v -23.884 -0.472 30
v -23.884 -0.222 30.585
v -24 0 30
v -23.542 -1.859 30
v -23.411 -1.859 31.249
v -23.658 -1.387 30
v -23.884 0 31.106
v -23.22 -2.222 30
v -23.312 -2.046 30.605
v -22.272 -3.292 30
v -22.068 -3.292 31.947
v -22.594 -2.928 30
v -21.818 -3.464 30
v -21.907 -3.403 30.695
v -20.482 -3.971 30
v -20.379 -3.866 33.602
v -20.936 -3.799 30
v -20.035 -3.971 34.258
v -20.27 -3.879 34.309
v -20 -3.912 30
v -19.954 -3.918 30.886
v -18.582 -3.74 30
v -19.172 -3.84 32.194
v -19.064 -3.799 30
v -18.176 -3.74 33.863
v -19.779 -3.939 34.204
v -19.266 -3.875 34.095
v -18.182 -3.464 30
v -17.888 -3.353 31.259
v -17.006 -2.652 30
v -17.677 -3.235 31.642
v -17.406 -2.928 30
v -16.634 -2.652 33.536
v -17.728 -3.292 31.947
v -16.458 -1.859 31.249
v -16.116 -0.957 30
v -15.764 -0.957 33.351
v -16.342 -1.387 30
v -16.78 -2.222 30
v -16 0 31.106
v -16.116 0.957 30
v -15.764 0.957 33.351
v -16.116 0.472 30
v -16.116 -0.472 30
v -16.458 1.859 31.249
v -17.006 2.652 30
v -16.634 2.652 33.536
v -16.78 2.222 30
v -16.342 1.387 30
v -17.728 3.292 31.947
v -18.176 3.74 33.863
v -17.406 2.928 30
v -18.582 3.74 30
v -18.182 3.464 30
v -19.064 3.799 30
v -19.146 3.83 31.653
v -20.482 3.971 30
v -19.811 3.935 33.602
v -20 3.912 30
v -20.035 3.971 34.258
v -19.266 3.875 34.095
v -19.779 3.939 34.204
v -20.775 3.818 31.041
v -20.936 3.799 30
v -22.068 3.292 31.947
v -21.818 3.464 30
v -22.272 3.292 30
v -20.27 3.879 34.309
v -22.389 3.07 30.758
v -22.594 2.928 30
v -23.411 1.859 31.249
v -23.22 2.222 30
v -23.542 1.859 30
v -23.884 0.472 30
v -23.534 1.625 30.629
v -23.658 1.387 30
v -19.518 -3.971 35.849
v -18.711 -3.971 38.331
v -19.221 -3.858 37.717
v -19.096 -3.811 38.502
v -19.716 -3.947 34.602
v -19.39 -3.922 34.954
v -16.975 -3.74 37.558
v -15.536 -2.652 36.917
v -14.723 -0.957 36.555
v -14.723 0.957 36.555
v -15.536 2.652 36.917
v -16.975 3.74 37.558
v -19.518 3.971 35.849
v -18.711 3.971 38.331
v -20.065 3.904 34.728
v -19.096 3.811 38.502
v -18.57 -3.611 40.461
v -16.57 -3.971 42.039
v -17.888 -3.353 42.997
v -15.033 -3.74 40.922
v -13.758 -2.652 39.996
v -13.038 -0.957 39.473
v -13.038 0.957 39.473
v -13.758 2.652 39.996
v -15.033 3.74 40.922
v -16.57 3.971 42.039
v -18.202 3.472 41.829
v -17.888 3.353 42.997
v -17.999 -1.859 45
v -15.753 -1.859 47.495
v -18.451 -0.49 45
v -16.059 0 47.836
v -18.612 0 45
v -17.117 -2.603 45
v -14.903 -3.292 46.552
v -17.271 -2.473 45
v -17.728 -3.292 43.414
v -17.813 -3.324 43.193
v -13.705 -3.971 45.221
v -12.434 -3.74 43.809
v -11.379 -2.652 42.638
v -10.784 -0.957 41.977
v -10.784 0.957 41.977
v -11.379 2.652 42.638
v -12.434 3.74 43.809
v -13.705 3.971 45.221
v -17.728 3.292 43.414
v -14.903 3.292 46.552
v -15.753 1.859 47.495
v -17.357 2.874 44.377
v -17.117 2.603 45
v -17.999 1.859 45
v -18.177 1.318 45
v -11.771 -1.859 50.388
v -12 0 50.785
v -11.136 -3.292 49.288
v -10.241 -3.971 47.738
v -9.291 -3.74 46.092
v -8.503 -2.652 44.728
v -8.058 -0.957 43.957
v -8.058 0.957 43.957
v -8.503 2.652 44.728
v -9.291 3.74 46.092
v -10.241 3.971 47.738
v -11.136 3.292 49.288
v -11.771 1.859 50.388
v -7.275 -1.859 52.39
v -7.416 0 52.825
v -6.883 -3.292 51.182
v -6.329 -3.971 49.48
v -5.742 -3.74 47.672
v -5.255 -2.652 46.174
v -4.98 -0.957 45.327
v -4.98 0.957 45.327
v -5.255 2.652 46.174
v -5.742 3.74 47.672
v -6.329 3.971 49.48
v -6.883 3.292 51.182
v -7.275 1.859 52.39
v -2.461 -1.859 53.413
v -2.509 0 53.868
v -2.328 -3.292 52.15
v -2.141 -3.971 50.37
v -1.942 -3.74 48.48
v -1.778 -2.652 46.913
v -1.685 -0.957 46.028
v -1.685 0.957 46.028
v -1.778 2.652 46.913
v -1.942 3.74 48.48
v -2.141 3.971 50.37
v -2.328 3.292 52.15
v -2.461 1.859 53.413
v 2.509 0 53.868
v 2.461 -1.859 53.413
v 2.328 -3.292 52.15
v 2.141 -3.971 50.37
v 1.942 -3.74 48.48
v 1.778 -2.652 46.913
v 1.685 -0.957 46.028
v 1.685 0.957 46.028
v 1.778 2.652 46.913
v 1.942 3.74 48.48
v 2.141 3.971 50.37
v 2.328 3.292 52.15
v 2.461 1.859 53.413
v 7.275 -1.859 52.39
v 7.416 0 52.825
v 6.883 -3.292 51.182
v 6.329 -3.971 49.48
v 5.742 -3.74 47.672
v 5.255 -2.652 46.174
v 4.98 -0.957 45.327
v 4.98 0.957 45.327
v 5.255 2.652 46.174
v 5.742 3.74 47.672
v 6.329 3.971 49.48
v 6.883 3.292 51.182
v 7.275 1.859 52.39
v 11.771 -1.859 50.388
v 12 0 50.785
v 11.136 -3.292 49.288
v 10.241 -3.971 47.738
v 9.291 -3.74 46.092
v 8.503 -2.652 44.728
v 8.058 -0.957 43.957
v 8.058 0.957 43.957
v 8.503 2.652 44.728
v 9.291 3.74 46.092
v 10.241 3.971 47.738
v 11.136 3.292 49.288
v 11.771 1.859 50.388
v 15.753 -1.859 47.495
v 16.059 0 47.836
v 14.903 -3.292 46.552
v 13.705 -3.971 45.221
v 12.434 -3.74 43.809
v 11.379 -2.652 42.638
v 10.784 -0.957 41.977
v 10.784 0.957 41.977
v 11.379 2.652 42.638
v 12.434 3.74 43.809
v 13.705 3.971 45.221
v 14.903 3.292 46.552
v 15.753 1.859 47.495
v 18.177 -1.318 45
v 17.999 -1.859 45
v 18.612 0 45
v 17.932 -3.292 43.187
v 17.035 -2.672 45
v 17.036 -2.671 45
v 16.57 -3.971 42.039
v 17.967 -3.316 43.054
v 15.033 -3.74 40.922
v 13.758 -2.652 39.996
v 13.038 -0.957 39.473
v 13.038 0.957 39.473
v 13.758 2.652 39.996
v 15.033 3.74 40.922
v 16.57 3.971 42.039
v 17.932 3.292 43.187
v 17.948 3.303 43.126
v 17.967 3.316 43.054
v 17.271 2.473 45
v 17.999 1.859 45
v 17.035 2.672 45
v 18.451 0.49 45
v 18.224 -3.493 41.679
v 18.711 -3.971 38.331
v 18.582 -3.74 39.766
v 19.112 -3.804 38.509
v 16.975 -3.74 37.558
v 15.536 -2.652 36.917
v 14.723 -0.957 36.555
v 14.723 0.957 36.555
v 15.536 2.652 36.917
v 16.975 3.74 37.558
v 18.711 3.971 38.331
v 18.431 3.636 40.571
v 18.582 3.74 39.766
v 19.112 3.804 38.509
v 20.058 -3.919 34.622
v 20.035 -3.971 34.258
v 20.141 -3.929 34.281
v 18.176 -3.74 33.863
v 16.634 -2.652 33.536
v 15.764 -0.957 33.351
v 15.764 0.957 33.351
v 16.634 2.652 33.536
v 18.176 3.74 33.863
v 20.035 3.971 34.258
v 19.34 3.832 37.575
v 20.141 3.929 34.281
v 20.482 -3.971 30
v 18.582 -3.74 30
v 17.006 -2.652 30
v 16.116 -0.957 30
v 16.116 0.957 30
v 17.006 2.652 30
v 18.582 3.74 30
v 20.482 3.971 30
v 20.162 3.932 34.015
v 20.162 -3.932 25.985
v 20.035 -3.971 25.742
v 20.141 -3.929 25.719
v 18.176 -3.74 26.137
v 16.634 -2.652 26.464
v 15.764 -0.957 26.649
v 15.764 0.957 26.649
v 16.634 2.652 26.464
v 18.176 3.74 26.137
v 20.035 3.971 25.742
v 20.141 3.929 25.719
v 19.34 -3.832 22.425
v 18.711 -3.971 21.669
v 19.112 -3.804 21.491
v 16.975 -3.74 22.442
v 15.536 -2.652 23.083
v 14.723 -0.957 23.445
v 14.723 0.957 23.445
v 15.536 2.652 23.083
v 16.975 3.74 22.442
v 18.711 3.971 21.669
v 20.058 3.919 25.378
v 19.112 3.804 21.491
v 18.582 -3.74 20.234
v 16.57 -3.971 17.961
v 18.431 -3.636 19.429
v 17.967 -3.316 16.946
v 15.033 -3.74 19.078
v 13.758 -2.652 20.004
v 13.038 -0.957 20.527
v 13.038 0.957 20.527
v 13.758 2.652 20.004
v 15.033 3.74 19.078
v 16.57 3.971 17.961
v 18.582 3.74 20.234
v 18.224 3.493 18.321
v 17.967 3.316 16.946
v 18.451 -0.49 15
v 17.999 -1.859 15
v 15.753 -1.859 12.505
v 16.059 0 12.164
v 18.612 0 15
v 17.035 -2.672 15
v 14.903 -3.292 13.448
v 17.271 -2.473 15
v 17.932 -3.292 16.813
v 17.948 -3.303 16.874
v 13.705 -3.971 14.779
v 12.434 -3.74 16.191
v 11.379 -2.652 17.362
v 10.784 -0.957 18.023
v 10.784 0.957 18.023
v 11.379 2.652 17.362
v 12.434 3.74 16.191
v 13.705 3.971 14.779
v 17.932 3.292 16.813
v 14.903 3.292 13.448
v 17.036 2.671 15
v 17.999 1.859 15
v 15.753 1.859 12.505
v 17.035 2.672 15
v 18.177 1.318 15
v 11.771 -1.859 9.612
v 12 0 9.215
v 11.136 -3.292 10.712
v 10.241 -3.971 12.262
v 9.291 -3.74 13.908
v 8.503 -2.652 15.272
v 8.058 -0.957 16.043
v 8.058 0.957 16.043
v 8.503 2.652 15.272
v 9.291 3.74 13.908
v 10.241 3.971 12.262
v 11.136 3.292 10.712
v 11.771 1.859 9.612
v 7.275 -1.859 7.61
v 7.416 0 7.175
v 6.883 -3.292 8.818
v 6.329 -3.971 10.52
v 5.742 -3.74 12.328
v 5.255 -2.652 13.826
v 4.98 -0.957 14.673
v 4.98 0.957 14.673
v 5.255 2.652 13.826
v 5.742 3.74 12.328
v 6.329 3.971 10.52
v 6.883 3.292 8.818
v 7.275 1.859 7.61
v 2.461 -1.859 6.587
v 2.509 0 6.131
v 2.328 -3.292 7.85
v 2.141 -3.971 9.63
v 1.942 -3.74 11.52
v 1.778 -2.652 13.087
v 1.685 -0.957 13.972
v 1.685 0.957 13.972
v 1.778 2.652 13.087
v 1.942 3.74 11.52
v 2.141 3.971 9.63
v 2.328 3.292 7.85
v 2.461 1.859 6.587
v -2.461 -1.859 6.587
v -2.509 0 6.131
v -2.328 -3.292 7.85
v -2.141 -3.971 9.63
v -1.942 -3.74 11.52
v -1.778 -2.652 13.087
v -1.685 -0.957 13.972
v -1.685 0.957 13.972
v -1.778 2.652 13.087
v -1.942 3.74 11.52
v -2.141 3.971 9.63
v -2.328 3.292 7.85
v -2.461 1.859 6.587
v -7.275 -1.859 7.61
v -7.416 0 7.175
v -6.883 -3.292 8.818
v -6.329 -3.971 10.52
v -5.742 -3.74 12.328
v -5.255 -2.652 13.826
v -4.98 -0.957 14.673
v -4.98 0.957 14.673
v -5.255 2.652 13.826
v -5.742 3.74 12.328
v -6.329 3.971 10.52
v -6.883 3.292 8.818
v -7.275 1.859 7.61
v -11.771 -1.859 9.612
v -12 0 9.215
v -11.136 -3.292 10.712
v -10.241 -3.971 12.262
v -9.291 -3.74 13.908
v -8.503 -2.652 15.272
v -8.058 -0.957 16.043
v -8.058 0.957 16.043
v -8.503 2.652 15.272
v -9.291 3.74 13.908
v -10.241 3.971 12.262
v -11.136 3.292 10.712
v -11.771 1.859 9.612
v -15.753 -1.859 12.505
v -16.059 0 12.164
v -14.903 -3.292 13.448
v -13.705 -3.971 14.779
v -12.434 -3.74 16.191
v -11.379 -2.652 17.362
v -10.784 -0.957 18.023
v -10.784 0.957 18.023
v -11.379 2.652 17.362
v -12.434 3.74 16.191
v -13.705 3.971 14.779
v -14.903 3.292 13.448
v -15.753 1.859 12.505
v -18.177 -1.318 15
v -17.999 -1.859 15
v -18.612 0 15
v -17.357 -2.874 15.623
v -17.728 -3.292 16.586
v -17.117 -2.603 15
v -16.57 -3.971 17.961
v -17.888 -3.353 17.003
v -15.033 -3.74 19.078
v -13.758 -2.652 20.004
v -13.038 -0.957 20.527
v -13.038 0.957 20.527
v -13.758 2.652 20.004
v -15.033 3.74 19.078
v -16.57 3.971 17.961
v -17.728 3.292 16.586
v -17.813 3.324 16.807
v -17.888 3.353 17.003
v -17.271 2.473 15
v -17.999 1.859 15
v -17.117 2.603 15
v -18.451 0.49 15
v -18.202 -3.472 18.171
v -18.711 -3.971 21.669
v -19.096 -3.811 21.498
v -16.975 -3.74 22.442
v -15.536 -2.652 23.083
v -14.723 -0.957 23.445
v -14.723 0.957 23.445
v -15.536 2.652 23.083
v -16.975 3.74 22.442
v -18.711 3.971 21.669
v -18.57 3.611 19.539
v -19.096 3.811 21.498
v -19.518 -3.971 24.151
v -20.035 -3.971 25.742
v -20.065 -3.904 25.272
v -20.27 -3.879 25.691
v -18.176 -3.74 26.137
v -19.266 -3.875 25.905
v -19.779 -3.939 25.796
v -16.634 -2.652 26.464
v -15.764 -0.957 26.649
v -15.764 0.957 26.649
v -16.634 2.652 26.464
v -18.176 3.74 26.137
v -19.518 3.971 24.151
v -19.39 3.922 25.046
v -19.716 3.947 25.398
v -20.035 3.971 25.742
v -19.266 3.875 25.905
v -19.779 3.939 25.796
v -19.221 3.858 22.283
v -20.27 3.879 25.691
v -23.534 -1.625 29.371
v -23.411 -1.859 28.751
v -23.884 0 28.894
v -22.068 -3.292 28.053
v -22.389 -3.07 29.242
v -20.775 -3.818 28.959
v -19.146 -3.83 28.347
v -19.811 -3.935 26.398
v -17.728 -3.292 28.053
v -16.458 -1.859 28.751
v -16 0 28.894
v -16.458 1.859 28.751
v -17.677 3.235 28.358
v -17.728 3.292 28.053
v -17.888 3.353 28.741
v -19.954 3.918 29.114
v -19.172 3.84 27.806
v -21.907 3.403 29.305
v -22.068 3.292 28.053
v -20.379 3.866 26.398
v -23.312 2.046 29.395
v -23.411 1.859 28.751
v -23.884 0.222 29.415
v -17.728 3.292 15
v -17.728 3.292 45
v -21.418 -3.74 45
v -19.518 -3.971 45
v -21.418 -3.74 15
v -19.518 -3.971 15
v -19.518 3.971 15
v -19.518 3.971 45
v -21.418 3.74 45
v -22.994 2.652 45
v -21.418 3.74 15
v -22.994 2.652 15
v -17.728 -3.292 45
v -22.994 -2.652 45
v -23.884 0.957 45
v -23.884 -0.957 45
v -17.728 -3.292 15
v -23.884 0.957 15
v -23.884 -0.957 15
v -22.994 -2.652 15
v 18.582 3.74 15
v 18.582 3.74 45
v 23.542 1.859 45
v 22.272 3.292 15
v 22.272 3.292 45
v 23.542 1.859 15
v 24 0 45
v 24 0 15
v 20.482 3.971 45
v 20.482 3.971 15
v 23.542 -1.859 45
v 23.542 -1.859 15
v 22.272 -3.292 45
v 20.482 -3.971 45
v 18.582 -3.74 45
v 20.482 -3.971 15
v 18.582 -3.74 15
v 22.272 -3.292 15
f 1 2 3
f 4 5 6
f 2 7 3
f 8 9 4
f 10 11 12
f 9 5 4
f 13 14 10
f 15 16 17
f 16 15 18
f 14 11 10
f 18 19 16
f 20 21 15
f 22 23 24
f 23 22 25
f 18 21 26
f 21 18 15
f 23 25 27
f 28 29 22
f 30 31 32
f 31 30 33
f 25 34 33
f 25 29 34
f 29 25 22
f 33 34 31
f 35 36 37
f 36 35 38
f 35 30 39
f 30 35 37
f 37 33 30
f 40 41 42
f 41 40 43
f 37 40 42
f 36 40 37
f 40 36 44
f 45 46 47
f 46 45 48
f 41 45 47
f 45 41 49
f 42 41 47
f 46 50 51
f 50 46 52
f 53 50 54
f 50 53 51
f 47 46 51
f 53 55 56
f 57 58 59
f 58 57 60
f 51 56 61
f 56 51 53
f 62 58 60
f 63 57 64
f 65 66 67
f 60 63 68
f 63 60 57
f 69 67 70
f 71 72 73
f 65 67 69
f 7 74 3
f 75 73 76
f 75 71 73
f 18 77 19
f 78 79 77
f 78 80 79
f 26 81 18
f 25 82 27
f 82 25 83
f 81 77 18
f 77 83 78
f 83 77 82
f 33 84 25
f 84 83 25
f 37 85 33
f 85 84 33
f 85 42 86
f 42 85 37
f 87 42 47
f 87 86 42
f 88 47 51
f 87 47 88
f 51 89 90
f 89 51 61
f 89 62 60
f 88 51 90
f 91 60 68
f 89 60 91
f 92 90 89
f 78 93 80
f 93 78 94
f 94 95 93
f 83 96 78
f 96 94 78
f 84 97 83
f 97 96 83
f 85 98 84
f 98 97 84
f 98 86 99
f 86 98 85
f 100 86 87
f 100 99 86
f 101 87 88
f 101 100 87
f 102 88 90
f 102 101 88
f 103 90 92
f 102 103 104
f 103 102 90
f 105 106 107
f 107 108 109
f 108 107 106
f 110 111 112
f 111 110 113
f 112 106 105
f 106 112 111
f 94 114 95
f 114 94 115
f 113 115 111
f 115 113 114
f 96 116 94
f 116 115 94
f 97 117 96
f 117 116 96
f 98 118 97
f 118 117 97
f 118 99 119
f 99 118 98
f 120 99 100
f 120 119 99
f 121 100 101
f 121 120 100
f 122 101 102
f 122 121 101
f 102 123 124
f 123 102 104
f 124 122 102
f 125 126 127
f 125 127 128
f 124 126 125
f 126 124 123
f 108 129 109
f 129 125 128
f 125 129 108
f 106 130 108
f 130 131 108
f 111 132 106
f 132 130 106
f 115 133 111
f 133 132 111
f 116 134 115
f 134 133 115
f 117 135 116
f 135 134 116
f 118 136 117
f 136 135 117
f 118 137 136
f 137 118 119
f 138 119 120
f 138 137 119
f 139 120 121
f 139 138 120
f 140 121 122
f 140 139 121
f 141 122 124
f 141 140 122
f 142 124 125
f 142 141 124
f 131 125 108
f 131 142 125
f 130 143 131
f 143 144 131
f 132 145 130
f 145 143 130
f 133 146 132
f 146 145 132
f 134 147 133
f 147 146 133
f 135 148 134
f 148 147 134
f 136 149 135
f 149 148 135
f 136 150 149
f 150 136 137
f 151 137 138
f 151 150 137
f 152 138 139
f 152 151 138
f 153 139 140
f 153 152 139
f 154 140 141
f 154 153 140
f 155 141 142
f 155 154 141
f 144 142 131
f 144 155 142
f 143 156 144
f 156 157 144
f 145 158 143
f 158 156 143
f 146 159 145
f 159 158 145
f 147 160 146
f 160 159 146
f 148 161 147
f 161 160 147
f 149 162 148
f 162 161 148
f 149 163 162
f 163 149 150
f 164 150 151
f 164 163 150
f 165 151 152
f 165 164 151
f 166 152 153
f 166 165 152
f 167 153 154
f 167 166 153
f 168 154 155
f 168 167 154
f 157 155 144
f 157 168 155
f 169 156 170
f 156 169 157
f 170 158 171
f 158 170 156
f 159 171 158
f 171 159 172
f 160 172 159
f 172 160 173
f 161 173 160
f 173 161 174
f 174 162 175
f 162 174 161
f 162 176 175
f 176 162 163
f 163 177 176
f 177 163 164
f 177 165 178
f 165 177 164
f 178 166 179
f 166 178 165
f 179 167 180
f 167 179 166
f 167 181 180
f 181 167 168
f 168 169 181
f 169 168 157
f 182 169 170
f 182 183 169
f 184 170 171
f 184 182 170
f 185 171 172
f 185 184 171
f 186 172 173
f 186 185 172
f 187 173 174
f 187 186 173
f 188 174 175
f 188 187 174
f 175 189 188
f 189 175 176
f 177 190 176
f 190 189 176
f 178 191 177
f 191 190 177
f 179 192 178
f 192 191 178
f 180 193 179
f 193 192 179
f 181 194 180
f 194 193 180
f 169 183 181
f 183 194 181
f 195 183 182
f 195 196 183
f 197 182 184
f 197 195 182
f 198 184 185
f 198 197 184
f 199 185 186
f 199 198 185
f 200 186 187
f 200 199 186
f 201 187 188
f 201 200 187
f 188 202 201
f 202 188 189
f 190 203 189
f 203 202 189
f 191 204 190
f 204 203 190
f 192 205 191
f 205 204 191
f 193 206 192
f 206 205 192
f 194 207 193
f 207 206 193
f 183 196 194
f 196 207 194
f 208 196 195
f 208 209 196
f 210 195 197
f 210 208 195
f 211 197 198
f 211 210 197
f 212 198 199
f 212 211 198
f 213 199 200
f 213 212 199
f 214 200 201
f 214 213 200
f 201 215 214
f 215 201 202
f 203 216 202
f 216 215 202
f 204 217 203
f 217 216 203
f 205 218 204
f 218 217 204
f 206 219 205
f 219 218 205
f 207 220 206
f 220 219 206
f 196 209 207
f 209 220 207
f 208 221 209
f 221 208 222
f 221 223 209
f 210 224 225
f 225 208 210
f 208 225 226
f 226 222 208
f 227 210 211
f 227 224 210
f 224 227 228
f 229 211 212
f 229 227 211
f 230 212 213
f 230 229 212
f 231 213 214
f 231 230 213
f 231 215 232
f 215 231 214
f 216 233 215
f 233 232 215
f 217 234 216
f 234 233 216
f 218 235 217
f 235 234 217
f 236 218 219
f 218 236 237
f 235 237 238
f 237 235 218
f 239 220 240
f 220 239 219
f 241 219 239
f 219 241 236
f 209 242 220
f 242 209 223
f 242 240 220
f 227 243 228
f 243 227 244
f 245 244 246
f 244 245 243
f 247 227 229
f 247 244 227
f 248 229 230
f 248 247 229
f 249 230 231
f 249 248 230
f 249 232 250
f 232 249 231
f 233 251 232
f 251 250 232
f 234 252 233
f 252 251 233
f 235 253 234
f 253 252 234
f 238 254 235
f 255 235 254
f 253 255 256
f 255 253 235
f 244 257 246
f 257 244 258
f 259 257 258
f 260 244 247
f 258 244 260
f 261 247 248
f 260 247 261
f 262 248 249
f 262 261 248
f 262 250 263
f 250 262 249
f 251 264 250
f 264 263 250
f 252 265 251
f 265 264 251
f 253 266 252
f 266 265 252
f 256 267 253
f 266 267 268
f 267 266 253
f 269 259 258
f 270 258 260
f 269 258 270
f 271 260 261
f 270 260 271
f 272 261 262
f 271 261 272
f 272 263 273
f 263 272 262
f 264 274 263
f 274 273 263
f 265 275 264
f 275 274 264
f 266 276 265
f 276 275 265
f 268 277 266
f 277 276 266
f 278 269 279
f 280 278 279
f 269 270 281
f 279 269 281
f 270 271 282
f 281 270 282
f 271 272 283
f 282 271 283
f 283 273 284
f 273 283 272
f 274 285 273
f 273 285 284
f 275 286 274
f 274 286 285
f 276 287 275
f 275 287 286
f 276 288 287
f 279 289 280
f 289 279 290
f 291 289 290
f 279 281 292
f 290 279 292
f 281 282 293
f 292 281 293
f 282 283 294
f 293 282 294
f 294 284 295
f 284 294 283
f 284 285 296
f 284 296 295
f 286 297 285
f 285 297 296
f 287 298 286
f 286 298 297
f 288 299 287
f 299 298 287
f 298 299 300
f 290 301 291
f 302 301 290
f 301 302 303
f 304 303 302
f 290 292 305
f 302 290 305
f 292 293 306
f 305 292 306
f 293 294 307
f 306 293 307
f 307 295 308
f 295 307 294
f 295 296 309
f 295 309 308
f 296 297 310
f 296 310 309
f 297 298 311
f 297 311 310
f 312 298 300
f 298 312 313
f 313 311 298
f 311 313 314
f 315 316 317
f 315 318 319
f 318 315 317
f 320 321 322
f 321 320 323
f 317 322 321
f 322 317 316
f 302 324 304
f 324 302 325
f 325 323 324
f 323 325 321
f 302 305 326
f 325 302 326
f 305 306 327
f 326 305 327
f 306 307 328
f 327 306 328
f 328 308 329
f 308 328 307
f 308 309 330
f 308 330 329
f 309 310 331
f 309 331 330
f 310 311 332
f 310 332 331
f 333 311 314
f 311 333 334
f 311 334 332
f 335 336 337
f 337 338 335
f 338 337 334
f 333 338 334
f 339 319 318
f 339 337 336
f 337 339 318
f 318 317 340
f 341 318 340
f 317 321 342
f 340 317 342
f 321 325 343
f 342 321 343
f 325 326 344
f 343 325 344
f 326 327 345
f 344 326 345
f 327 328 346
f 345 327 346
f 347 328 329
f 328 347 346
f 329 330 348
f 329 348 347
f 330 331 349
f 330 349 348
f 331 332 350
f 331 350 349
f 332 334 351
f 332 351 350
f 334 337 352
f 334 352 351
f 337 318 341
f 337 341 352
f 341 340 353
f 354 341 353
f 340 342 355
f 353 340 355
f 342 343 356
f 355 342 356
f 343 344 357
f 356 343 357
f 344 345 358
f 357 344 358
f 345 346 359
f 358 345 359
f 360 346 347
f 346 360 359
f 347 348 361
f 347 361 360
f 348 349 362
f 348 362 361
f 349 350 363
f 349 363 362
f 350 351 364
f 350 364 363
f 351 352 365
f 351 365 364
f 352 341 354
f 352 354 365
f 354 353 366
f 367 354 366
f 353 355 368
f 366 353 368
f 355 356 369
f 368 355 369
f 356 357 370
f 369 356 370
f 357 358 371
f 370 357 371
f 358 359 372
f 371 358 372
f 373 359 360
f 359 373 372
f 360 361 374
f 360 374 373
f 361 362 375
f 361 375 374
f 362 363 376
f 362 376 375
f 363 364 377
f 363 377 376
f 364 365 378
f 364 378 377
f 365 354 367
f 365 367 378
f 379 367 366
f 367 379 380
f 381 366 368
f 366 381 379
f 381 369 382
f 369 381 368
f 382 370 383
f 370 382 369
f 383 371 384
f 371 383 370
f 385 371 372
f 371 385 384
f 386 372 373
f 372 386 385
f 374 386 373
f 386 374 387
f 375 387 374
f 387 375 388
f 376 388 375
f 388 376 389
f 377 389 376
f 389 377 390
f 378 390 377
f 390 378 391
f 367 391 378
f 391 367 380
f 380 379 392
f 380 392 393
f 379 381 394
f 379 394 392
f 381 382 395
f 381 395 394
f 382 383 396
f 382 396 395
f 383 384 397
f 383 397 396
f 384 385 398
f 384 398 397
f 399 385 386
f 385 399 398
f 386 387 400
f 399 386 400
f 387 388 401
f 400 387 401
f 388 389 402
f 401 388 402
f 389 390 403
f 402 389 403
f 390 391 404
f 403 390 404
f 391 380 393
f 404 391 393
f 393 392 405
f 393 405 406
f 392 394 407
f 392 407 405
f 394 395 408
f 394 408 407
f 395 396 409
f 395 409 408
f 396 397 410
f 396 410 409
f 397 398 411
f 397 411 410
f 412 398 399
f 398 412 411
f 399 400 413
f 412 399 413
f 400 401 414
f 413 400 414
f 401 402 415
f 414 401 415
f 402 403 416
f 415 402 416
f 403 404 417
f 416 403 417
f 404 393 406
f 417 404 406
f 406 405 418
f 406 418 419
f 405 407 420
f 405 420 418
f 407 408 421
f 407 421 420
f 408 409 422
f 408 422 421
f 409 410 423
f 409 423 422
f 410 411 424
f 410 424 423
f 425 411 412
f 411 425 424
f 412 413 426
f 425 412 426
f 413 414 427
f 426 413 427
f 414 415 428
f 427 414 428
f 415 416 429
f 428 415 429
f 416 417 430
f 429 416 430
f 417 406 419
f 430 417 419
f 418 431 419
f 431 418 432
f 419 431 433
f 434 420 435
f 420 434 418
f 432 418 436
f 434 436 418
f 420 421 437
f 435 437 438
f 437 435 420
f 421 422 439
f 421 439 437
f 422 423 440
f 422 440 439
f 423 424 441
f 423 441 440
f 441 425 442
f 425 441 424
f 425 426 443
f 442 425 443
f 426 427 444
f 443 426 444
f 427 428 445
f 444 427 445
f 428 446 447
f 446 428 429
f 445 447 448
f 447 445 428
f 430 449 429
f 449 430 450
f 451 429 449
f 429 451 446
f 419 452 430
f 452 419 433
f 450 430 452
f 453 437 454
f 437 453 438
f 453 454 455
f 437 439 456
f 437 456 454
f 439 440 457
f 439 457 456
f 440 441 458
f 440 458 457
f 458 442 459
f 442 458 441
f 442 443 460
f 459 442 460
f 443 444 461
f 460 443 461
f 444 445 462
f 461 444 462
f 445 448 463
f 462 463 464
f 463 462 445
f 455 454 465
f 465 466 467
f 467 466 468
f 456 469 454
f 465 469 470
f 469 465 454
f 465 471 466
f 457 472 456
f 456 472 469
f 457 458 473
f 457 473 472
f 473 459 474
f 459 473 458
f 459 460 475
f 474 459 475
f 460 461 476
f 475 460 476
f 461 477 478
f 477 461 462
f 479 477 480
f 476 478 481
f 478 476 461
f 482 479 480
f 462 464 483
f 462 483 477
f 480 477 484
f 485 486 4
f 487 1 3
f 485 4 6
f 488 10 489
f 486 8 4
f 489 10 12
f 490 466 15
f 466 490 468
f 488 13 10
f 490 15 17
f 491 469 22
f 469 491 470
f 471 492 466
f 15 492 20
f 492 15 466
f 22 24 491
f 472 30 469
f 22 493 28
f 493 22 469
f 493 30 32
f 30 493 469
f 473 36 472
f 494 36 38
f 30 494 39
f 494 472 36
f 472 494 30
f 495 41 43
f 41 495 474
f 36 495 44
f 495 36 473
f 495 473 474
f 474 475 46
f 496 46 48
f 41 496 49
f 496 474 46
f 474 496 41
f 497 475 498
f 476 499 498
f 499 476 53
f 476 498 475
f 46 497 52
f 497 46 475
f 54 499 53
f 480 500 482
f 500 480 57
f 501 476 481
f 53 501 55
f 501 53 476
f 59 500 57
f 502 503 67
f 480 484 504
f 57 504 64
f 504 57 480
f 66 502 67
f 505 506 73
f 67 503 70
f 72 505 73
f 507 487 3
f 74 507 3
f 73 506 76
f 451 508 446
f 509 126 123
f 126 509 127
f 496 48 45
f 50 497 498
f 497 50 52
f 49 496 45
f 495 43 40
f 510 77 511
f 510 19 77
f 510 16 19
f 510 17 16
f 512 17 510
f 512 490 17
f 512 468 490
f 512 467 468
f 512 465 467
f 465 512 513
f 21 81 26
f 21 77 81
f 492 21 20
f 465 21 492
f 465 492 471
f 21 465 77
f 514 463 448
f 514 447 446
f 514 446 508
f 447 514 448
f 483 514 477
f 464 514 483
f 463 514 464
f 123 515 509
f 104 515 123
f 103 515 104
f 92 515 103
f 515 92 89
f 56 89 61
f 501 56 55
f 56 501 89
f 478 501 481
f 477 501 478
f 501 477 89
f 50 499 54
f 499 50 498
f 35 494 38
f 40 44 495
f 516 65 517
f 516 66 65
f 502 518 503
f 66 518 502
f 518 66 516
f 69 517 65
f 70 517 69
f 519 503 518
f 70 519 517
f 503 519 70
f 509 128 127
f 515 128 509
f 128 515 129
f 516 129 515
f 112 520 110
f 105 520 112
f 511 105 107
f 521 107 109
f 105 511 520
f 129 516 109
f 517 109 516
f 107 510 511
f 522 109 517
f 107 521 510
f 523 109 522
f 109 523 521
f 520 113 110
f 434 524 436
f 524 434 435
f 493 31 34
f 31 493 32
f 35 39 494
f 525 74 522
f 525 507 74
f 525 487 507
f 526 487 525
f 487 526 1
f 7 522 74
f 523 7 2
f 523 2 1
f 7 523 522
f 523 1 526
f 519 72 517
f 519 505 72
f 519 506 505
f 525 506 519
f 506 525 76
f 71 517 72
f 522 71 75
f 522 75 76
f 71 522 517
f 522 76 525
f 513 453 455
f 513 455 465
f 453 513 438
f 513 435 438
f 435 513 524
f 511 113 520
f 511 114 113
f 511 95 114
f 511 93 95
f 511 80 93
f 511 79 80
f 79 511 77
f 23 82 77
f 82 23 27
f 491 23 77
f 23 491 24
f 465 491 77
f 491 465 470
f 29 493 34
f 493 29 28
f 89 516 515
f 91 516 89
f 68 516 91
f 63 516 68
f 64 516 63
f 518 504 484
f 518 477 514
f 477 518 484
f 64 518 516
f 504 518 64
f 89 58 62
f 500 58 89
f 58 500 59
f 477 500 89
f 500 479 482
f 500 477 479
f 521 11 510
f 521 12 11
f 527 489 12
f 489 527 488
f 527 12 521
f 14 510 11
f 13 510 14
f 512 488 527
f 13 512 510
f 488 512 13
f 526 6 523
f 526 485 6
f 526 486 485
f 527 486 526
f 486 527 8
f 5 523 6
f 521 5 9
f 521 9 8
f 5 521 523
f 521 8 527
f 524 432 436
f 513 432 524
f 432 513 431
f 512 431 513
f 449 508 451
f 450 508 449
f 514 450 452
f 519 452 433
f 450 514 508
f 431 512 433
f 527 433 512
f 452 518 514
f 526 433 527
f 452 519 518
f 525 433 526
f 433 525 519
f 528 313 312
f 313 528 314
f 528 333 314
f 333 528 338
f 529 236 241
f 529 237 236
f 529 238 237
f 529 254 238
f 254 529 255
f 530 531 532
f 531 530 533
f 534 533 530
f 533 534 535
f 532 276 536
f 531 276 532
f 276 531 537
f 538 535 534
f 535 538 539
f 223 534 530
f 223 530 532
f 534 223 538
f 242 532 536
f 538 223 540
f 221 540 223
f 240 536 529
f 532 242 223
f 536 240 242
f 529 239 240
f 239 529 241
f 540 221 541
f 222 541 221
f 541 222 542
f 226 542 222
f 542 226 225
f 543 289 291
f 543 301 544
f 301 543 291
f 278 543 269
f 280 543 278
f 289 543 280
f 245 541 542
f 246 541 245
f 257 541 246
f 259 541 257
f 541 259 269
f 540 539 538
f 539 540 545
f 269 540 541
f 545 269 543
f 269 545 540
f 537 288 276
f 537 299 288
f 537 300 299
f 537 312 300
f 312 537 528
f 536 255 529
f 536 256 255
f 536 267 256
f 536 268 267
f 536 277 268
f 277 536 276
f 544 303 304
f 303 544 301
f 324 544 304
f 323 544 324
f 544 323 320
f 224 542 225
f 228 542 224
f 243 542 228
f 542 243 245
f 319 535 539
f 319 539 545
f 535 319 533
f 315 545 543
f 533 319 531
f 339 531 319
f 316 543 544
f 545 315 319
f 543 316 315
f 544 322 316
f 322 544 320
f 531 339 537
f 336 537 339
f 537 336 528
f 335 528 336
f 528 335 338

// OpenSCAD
/* doodle-meta {"version":1,"parameters":{"bend_radius":{"label":"Bend Radius","description":"Radius of the semi-circular top bend","unit":"mm","feature":"bend"},"leg_length":{"label":"Leg Length","description":"Length of the straight legs extending downwards","unit":"mm","feature":"legs"},"rod_diameter":{"label":"Rod Diameter","description":"Diameter of the circular cross-section","unit":"mm","feature":"cross_section"}},"features":{"bend":{"kind":"dimension","axis":"z","label":"Bend Radius"},"legs":{"kind":"dimension","axis":"z","label":"Leg Length"},"cross_section":{"kind":"dimension","axis":"x","label":"Rod Diameter"}}} */

// Parameters
bend_radius = 20;
leg_length = 30;
rod_diameter = 8;

// Derived dimensions
rod_radius = rod_diameter / 2;
total_height = leg_length + bend_radius + rod_radius;
total_width = 2 * bend_radius + rod_diameter;

// Ensure the part sits on the build plate (Z=0)
// The legs extend from Z=0 to Z=leg_length.
// The bend center is at Z=leg_length.
// The top of the bend is at Z=leg_length + bend_radius + rod_radius.

// Main Body Construction
// 1. Left Leg
translate([-bend_radius, 0, leg_length])
    cylinder(h=leg_length, r=rod_radius, center=true);

// 2. Right Leg
translate([bend_radius, 0, leg_length])
    cylinder(h=leg_length, r=rod_radius, center=true);

// 3. Semi-circular Bend
// The bend connects the tops of the legs.
// Center of the bend arc is at (0, 0, leg_length).
// We create a torus segment.
// Torus major radius = bend_radius, minor radius = rod_radius.
// We need the upper half (Z > leg_length).
// A full torus centered at (0,0,leg_length) in the XY plane (rotated 90 deg around X)
// would have its tube centerline in the XZ plane? No.
// Standard torus: axis is Z. Tube centerline is in XY plane.
// We want the tube centerline to be in the XZ plane (vertical arc).
// So we rotate the torus 90 degrees around X.
// Then we intersect with a cube to keep only the top half (Z >= leg_length).

translate([0, 0, leg_length])
    rotate([90, 0, 0])
    intersection() {
        torus(r=bend_radius, r2=rod_radius);
        // Keep only the part where Z >= 0 (relative to the torus center)
        // Since we rotated 90 around X, the "up" direction of the torus tube
        // corresponds to +Z in the global frame if we think about the arc.
        // Actually, let's verify.
        // Torus default: ring in XY, tube around it.
        // Rotate 90 around X: Ring moves to XZ plane.
        // The "top" of the ring (positive Z) is what we want.
        // So we intersect with a cube covering Z >= 0.
        translate([0, 0, 0])
            cube([total_width + rod_diameter, total_width + rod_diameter, total_height], center=true);
    }

// Helper module for Torus
module torus(r, r2) {
    rotate_extrude(convexity=10)
        translate([r, 0, 0])
        circle(r=r2);
}
